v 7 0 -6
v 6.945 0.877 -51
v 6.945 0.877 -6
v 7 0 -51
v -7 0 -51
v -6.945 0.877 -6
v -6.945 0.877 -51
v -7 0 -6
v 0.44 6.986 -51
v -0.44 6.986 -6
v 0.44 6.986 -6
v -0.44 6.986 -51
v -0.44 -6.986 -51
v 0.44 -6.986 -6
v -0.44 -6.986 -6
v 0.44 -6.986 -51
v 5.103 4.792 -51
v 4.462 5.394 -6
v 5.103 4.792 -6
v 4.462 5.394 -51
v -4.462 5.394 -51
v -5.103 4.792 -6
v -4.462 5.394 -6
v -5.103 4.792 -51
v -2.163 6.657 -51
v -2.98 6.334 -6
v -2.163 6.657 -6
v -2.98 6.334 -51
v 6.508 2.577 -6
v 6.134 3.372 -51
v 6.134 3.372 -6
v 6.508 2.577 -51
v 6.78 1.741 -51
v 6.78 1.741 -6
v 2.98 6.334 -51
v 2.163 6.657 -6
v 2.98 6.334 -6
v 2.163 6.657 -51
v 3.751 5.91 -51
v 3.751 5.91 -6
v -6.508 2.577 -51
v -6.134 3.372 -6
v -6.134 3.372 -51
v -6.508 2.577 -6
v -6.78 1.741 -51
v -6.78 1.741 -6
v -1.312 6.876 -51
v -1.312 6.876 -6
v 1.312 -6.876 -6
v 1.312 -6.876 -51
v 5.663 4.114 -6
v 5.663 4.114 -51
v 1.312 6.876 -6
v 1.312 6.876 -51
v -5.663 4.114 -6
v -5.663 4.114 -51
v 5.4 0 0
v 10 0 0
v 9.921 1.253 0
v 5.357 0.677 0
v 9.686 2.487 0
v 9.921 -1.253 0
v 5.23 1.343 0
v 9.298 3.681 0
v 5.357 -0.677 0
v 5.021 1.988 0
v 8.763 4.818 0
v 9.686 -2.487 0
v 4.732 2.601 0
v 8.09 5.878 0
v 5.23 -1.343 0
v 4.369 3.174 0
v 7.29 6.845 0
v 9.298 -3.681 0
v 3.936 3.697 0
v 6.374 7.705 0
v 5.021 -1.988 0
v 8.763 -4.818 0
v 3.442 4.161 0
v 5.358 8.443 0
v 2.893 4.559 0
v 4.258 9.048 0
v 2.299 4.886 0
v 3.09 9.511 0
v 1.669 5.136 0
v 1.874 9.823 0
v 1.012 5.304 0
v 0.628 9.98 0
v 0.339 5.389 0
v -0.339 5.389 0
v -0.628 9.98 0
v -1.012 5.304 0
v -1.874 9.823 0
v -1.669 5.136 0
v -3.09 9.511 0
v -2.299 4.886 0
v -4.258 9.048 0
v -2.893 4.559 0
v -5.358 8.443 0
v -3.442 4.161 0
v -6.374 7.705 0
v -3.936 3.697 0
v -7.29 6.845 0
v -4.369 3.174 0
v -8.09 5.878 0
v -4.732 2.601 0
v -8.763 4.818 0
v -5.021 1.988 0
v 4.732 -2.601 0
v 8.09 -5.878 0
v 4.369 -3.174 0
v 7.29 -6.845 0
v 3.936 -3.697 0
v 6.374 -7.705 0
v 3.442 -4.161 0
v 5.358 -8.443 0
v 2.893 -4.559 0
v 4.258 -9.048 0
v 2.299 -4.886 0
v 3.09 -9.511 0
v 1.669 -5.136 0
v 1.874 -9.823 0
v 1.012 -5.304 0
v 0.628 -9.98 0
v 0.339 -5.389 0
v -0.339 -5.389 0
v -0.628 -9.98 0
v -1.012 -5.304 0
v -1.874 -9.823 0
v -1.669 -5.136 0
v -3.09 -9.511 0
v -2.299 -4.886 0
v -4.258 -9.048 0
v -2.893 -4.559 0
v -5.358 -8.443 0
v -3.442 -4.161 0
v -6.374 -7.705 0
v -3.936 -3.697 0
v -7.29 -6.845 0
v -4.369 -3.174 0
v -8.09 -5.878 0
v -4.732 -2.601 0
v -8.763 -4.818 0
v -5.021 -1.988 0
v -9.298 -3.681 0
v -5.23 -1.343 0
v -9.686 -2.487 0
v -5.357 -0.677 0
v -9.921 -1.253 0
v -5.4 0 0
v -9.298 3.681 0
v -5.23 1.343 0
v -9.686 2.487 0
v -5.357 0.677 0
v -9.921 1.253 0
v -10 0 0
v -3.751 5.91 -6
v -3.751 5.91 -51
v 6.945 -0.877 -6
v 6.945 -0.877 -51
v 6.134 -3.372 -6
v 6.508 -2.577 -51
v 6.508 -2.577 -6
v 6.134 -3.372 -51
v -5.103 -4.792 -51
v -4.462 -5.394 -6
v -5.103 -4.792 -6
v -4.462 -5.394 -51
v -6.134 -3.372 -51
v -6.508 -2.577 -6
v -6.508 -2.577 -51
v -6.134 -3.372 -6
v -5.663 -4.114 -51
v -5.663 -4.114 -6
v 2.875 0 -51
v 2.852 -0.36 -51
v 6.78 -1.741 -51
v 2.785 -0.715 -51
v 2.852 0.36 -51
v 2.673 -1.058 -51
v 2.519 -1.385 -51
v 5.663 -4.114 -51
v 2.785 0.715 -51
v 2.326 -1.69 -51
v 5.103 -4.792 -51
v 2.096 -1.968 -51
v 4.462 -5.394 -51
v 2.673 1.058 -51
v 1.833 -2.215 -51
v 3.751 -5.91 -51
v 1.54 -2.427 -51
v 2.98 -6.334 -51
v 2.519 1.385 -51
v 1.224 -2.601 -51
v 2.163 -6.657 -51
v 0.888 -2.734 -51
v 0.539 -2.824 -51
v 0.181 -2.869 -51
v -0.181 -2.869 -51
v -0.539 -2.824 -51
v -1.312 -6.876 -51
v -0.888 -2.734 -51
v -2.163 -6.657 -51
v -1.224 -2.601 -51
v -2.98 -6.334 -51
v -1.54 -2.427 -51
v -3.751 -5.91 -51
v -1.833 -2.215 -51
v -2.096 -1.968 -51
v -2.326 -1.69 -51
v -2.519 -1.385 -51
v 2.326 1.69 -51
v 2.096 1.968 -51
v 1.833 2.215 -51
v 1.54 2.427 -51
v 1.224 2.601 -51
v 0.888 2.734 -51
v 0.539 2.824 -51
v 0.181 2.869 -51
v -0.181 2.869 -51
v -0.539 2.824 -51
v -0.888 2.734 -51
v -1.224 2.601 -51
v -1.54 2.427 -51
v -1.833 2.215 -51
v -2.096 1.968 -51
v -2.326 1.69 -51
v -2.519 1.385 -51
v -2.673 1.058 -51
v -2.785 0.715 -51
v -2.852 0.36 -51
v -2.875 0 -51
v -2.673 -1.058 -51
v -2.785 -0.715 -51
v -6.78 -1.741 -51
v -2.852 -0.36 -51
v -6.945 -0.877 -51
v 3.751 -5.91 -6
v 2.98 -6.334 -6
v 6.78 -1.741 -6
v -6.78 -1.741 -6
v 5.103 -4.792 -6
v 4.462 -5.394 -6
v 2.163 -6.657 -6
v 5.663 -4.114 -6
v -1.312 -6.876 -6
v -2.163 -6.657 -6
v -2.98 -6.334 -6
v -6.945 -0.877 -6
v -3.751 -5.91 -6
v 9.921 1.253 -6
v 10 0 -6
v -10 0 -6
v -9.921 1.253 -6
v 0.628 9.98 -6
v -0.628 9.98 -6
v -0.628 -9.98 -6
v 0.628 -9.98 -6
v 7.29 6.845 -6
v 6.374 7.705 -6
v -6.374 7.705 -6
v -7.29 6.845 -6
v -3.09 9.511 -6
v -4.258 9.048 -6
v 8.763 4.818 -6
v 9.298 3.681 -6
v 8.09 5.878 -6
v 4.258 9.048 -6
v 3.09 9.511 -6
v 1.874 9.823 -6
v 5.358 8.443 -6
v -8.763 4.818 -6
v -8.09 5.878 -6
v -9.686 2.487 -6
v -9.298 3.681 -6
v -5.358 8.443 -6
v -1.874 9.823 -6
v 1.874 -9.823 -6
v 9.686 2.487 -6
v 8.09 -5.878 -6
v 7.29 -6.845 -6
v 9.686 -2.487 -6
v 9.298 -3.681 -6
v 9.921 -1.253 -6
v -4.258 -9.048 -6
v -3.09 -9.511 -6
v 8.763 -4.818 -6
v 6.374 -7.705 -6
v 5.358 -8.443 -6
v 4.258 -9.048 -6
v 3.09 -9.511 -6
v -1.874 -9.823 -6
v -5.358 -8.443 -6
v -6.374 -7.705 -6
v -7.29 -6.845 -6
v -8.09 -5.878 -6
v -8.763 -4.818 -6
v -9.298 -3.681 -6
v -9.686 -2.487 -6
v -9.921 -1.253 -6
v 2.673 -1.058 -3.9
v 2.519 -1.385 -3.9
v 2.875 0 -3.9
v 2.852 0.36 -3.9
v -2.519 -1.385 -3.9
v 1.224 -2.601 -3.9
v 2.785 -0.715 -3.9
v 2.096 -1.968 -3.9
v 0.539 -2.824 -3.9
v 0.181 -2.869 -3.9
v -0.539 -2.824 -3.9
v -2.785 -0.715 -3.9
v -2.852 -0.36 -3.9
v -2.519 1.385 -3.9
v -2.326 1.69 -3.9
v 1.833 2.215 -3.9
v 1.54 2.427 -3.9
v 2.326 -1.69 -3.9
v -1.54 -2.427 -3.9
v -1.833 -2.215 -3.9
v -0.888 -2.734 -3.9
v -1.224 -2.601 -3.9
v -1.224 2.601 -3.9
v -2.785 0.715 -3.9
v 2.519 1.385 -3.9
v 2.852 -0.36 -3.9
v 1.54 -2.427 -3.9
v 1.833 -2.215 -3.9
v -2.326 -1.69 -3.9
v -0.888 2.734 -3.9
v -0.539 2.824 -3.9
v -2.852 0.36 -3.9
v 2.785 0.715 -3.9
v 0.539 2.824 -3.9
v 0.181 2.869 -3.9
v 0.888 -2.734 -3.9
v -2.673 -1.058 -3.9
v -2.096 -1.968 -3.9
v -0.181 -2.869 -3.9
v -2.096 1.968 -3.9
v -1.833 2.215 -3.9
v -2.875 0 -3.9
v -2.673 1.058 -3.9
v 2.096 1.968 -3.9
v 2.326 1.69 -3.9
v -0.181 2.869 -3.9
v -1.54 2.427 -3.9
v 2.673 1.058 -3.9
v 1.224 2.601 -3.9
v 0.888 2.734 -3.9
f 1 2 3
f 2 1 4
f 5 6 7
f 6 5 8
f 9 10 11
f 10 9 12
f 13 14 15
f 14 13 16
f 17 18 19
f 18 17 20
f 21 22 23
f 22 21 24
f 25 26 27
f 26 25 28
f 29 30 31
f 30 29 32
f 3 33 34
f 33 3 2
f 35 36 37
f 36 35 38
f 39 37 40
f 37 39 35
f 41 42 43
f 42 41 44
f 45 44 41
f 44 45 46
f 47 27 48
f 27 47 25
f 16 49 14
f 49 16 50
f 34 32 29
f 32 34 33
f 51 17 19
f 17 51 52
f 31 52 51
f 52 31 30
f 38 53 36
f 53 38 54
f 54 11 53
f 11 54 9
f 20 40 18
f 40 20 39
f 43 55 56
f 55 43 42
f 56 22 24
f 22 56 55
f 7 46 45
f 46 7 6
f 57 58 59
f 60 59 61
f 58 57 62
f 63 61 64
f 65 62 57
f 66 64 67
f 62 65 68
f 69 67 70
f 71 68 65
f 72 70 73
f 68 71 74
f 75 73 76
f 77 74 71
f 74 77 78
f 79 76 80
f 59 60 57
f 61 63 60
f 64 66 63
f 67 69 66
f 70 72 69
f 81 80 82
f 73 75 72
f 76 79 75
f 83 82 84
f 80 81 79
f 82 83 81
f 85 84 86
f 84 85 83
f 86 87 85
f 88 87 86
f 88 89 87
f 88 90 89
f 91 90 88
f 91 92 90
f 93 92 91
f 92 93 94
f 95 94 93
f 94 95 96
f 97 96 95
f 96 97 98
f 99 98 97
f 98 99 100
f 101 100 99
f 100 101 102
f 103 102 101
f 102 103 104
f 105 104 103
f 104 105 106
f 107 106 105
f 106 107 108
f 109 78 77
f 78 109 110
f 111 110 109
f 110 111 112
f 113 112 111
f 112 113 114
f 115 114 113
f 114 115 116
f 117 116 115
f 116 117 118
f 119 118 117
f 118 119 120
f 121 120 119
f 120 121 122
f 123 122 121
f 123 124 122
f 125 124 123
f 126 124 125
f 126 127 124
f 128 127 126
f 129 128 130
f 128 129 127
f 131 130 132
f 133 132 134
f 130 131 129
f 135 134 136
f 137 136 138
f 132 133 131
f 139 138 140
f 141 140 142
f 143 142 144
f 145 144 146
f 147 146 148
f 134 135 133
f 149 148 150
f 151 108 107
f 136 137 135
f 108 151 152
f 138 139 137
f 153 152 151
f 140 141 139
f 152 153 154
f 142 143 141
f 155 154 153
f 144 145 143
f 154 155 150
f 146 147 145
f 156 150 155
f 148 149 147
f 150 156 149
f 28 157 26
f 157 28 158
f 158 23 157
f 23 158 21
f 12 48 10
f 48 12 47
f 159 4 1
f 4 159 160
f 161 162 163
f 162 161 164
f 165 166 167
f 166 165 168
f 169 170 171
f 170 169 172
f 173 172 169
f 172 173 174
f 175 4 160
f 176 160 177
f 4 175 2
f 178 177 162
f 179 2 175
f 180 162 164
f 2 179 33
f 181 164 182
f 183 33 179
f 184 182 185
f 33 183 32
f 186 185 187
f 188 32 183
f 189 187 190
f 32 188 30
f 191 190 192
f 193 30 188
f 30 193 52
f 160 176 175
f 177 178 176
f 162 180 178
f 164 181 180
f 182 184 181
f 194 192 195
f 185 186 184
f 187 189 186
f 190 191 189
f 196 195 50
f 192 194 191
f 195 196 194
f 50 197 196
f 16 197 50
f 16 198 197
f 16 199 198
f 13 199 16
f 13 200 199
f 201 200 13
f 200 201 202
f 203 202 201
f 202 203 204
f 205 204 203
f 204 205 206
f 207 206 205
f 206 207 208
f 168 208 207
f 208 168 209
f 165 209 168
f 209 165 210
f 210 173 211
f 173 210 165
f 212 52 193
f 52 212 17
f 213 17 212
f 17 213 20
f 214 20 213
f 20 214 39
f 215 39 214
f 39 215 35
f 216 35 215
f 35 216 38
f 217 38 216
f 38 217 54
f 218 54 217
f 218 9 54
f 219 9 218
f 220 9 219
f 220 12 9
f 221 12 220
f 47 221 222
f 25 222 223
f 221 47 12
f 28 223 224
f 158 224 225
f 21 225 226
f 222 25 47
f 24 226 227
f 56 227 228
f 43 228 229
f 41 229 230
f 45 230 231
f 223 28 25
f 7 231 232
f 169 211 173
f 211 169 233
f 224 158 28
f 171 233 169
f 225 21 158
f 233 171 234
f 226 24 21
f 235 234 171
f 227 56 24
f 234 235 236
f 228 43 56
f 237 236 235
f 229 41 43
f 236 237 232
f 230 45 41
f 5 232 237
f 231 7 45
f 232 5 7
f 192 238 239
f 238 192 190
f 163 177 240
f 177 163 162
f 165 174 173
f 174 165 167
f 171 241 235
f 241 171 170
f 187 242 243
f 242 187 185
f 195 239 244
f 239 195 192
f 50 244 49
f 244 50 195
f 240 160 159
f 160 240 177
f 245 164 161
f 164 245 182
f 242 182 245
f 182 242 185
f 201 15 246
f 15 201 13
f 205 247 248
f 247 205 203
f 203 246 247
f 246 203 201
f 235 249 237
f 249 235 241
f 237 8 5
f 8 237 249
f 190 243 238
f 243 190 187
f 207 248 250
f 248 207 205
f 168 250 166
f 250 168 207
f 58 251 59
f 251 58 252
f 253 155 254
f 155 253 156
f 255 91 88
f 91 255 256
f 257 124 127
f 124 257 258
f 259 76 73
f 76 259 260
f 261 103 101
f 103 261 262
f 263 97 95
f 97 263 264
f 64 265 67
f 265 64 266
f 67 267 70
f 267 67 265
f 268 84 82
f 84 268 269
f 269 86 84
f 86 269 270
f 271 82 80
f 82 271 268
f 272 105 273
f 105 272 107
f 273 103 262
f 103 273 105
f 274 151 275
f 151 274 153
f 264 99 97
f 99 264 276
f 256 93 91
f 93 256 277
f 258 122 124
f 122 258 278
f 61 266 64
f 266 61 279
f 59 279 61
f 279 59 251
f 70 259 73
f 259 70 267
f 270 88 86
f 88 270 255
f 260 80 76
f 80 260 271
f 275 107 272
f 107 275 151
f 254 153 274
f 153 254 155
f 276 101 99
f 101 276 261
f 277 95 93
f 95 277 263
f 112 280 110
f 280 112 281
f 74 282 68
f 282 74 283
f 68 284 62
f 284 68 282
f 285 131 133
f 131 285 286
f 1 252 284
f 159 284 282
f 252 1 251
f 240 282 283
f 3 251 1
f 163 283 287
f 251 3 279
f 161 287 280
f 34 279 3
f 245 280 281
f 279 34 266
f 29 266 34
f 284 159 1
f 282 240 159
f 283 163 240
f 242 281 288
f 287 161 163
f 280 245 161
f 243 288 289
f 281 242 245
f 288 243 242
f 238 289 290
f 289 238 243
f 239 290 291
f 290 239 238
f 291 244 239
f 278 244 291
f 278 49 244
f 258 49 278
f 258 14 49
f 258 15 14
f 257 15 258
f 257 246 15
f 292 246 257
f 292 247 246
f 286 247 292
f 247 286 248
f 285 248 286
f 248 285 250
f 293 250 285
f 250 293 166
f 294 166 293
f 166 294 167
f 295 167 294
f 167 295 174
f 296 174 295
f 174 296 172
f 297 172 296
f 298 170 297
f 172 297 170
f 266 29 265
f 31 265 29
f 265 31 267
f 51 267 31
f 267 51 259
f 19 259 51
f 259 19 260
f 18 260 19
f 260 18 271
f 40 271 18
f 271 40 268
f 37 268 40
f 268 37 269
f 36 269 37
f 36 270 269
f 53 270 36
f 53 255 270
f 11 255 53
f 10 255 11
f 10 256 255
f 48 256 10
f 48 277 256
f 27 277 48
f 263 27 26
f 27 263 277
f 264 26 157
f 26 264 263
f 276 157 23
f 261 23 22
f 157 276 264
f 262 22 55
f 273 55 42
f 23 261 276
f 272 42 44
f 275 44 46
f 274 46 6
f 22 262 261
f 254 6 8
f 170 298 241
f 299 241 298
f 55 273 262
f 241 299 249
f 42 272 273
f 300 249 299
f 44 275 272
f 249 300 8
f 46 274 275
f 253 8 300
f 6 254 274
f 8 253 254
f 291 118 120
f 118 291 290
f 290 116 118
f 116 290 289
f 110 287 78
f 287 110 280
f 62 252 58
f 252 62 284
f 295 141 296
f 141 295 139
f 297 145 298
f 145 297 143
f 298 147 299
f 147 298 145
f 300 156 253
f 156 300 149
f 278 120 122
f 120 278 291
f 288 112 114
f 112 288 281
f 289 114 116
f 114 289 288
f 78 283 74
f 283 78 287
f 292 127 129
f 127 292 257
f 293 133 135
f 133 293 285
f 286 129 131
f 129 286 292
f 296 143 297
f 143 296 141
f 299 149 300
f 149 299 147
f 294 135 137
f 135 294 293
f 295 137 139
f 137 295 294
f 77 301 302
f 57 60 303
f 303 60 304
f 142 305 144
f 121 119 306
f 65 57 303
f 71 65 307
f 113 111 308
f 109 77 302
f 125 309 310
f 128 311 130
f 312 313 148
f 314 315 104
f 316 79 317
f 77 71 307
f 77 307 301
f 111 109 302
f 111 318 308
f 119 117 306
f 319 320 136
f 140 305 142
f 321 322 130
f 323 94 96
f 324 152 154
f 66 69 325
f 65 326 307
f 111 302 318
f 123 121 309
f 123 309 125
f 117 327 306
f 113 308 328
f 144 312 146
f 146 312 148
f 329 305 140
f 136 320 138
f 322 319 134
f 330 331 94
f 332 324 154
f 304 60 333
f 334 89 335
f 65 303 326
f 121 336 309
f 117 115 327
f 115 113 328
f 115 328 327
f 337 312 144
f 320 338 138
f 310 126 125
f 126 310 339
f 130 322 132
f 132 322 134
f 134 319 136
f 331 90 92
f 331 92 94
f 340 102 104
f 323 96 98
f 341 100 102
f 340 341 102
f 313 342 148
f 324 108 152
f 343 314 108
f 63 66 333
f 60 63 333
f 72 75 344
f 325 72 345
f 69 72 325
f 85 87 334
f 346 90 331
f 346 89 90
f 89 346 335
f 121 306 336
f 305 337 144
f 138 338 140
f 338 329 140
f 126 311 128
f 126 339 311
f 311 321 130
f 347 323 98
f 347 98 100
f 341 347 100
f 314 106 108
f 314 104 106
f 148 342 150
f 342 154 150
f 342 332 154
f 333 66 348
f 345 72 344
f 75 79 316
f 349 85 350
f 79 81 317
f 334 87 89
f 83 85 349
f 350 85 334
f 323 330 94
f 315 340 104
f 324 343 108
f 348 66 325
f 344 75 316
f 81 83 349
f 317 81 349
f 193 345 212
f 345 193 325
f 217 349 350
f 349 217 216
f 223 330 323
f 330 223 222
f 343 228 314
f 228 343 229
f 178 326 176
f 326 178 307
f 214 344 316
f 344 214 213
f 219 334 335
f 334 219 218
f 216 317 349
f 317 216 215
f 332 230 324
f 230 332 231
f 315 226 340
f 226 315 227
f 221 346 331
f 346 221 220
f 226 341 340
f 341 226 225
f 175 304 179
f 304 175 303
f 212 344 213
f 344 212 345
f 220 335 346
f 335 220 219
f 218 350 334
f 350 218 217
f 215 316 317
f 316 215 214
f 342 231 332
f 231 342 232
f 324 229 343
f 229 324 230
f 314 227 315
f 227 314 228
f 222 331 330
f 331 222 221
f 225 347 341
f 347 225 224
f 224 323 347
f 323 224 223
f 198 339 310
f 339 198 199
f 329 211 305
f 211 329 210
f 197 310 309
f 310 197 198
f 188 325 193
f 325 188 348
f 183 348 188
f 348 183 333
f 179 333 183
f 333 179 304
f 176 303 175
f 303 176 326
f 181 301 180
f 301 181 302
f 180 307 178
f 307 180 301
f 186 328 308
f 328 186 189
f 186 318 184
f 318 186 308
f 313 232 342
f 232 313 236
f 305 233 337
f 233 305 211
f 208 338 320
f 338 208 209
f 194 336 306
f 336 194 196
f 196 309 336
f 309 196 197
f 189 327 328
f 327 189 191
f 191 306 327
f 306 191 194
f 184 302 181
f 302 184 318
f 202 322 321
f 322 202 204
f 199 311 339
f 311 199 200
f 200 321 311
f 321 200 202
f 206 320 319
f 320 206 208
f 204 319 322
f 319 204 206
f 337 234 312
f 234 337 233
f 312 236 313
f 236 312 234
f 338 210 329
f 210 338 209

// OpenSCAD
$fn = 50;


difference() {
	union() {
		translate(v = [0, 0, -51.0000000000]) {
			cylinder(h = 51, r = 7.0000000000);
		}
		translate(v = [0, 0, -6.0000000000]) {
			cylinder(h = 6, r = 10.0000000000);
		}
	}
	union() {
		translate(v = [0, 0, 0]) {
			rotate(a = [0, 0, 0]) {
				difference() {
					union() {
						#translate(v = [0, 0, -51.0000000000]) {
							cylinder(h = 51, r = 2.6000000000);
						}
						#translate(v = [0, 0, -3.9000000000]) {
							cylinder(h = 3.9000000000, r1 = 2.8750000000, r2 = 5.4000000000);
						}
						#translate(v = [0, 0, -51.0000000000]) {
							cylinder(h = 51, r = 2.8750000000);
						}
						#translate(v = [0, 0, -51.0000000000]) {
							cylinder(h = 51, r = 2.6000000000);
						}
					}
					union();
				}
			}
		}
	}
}
